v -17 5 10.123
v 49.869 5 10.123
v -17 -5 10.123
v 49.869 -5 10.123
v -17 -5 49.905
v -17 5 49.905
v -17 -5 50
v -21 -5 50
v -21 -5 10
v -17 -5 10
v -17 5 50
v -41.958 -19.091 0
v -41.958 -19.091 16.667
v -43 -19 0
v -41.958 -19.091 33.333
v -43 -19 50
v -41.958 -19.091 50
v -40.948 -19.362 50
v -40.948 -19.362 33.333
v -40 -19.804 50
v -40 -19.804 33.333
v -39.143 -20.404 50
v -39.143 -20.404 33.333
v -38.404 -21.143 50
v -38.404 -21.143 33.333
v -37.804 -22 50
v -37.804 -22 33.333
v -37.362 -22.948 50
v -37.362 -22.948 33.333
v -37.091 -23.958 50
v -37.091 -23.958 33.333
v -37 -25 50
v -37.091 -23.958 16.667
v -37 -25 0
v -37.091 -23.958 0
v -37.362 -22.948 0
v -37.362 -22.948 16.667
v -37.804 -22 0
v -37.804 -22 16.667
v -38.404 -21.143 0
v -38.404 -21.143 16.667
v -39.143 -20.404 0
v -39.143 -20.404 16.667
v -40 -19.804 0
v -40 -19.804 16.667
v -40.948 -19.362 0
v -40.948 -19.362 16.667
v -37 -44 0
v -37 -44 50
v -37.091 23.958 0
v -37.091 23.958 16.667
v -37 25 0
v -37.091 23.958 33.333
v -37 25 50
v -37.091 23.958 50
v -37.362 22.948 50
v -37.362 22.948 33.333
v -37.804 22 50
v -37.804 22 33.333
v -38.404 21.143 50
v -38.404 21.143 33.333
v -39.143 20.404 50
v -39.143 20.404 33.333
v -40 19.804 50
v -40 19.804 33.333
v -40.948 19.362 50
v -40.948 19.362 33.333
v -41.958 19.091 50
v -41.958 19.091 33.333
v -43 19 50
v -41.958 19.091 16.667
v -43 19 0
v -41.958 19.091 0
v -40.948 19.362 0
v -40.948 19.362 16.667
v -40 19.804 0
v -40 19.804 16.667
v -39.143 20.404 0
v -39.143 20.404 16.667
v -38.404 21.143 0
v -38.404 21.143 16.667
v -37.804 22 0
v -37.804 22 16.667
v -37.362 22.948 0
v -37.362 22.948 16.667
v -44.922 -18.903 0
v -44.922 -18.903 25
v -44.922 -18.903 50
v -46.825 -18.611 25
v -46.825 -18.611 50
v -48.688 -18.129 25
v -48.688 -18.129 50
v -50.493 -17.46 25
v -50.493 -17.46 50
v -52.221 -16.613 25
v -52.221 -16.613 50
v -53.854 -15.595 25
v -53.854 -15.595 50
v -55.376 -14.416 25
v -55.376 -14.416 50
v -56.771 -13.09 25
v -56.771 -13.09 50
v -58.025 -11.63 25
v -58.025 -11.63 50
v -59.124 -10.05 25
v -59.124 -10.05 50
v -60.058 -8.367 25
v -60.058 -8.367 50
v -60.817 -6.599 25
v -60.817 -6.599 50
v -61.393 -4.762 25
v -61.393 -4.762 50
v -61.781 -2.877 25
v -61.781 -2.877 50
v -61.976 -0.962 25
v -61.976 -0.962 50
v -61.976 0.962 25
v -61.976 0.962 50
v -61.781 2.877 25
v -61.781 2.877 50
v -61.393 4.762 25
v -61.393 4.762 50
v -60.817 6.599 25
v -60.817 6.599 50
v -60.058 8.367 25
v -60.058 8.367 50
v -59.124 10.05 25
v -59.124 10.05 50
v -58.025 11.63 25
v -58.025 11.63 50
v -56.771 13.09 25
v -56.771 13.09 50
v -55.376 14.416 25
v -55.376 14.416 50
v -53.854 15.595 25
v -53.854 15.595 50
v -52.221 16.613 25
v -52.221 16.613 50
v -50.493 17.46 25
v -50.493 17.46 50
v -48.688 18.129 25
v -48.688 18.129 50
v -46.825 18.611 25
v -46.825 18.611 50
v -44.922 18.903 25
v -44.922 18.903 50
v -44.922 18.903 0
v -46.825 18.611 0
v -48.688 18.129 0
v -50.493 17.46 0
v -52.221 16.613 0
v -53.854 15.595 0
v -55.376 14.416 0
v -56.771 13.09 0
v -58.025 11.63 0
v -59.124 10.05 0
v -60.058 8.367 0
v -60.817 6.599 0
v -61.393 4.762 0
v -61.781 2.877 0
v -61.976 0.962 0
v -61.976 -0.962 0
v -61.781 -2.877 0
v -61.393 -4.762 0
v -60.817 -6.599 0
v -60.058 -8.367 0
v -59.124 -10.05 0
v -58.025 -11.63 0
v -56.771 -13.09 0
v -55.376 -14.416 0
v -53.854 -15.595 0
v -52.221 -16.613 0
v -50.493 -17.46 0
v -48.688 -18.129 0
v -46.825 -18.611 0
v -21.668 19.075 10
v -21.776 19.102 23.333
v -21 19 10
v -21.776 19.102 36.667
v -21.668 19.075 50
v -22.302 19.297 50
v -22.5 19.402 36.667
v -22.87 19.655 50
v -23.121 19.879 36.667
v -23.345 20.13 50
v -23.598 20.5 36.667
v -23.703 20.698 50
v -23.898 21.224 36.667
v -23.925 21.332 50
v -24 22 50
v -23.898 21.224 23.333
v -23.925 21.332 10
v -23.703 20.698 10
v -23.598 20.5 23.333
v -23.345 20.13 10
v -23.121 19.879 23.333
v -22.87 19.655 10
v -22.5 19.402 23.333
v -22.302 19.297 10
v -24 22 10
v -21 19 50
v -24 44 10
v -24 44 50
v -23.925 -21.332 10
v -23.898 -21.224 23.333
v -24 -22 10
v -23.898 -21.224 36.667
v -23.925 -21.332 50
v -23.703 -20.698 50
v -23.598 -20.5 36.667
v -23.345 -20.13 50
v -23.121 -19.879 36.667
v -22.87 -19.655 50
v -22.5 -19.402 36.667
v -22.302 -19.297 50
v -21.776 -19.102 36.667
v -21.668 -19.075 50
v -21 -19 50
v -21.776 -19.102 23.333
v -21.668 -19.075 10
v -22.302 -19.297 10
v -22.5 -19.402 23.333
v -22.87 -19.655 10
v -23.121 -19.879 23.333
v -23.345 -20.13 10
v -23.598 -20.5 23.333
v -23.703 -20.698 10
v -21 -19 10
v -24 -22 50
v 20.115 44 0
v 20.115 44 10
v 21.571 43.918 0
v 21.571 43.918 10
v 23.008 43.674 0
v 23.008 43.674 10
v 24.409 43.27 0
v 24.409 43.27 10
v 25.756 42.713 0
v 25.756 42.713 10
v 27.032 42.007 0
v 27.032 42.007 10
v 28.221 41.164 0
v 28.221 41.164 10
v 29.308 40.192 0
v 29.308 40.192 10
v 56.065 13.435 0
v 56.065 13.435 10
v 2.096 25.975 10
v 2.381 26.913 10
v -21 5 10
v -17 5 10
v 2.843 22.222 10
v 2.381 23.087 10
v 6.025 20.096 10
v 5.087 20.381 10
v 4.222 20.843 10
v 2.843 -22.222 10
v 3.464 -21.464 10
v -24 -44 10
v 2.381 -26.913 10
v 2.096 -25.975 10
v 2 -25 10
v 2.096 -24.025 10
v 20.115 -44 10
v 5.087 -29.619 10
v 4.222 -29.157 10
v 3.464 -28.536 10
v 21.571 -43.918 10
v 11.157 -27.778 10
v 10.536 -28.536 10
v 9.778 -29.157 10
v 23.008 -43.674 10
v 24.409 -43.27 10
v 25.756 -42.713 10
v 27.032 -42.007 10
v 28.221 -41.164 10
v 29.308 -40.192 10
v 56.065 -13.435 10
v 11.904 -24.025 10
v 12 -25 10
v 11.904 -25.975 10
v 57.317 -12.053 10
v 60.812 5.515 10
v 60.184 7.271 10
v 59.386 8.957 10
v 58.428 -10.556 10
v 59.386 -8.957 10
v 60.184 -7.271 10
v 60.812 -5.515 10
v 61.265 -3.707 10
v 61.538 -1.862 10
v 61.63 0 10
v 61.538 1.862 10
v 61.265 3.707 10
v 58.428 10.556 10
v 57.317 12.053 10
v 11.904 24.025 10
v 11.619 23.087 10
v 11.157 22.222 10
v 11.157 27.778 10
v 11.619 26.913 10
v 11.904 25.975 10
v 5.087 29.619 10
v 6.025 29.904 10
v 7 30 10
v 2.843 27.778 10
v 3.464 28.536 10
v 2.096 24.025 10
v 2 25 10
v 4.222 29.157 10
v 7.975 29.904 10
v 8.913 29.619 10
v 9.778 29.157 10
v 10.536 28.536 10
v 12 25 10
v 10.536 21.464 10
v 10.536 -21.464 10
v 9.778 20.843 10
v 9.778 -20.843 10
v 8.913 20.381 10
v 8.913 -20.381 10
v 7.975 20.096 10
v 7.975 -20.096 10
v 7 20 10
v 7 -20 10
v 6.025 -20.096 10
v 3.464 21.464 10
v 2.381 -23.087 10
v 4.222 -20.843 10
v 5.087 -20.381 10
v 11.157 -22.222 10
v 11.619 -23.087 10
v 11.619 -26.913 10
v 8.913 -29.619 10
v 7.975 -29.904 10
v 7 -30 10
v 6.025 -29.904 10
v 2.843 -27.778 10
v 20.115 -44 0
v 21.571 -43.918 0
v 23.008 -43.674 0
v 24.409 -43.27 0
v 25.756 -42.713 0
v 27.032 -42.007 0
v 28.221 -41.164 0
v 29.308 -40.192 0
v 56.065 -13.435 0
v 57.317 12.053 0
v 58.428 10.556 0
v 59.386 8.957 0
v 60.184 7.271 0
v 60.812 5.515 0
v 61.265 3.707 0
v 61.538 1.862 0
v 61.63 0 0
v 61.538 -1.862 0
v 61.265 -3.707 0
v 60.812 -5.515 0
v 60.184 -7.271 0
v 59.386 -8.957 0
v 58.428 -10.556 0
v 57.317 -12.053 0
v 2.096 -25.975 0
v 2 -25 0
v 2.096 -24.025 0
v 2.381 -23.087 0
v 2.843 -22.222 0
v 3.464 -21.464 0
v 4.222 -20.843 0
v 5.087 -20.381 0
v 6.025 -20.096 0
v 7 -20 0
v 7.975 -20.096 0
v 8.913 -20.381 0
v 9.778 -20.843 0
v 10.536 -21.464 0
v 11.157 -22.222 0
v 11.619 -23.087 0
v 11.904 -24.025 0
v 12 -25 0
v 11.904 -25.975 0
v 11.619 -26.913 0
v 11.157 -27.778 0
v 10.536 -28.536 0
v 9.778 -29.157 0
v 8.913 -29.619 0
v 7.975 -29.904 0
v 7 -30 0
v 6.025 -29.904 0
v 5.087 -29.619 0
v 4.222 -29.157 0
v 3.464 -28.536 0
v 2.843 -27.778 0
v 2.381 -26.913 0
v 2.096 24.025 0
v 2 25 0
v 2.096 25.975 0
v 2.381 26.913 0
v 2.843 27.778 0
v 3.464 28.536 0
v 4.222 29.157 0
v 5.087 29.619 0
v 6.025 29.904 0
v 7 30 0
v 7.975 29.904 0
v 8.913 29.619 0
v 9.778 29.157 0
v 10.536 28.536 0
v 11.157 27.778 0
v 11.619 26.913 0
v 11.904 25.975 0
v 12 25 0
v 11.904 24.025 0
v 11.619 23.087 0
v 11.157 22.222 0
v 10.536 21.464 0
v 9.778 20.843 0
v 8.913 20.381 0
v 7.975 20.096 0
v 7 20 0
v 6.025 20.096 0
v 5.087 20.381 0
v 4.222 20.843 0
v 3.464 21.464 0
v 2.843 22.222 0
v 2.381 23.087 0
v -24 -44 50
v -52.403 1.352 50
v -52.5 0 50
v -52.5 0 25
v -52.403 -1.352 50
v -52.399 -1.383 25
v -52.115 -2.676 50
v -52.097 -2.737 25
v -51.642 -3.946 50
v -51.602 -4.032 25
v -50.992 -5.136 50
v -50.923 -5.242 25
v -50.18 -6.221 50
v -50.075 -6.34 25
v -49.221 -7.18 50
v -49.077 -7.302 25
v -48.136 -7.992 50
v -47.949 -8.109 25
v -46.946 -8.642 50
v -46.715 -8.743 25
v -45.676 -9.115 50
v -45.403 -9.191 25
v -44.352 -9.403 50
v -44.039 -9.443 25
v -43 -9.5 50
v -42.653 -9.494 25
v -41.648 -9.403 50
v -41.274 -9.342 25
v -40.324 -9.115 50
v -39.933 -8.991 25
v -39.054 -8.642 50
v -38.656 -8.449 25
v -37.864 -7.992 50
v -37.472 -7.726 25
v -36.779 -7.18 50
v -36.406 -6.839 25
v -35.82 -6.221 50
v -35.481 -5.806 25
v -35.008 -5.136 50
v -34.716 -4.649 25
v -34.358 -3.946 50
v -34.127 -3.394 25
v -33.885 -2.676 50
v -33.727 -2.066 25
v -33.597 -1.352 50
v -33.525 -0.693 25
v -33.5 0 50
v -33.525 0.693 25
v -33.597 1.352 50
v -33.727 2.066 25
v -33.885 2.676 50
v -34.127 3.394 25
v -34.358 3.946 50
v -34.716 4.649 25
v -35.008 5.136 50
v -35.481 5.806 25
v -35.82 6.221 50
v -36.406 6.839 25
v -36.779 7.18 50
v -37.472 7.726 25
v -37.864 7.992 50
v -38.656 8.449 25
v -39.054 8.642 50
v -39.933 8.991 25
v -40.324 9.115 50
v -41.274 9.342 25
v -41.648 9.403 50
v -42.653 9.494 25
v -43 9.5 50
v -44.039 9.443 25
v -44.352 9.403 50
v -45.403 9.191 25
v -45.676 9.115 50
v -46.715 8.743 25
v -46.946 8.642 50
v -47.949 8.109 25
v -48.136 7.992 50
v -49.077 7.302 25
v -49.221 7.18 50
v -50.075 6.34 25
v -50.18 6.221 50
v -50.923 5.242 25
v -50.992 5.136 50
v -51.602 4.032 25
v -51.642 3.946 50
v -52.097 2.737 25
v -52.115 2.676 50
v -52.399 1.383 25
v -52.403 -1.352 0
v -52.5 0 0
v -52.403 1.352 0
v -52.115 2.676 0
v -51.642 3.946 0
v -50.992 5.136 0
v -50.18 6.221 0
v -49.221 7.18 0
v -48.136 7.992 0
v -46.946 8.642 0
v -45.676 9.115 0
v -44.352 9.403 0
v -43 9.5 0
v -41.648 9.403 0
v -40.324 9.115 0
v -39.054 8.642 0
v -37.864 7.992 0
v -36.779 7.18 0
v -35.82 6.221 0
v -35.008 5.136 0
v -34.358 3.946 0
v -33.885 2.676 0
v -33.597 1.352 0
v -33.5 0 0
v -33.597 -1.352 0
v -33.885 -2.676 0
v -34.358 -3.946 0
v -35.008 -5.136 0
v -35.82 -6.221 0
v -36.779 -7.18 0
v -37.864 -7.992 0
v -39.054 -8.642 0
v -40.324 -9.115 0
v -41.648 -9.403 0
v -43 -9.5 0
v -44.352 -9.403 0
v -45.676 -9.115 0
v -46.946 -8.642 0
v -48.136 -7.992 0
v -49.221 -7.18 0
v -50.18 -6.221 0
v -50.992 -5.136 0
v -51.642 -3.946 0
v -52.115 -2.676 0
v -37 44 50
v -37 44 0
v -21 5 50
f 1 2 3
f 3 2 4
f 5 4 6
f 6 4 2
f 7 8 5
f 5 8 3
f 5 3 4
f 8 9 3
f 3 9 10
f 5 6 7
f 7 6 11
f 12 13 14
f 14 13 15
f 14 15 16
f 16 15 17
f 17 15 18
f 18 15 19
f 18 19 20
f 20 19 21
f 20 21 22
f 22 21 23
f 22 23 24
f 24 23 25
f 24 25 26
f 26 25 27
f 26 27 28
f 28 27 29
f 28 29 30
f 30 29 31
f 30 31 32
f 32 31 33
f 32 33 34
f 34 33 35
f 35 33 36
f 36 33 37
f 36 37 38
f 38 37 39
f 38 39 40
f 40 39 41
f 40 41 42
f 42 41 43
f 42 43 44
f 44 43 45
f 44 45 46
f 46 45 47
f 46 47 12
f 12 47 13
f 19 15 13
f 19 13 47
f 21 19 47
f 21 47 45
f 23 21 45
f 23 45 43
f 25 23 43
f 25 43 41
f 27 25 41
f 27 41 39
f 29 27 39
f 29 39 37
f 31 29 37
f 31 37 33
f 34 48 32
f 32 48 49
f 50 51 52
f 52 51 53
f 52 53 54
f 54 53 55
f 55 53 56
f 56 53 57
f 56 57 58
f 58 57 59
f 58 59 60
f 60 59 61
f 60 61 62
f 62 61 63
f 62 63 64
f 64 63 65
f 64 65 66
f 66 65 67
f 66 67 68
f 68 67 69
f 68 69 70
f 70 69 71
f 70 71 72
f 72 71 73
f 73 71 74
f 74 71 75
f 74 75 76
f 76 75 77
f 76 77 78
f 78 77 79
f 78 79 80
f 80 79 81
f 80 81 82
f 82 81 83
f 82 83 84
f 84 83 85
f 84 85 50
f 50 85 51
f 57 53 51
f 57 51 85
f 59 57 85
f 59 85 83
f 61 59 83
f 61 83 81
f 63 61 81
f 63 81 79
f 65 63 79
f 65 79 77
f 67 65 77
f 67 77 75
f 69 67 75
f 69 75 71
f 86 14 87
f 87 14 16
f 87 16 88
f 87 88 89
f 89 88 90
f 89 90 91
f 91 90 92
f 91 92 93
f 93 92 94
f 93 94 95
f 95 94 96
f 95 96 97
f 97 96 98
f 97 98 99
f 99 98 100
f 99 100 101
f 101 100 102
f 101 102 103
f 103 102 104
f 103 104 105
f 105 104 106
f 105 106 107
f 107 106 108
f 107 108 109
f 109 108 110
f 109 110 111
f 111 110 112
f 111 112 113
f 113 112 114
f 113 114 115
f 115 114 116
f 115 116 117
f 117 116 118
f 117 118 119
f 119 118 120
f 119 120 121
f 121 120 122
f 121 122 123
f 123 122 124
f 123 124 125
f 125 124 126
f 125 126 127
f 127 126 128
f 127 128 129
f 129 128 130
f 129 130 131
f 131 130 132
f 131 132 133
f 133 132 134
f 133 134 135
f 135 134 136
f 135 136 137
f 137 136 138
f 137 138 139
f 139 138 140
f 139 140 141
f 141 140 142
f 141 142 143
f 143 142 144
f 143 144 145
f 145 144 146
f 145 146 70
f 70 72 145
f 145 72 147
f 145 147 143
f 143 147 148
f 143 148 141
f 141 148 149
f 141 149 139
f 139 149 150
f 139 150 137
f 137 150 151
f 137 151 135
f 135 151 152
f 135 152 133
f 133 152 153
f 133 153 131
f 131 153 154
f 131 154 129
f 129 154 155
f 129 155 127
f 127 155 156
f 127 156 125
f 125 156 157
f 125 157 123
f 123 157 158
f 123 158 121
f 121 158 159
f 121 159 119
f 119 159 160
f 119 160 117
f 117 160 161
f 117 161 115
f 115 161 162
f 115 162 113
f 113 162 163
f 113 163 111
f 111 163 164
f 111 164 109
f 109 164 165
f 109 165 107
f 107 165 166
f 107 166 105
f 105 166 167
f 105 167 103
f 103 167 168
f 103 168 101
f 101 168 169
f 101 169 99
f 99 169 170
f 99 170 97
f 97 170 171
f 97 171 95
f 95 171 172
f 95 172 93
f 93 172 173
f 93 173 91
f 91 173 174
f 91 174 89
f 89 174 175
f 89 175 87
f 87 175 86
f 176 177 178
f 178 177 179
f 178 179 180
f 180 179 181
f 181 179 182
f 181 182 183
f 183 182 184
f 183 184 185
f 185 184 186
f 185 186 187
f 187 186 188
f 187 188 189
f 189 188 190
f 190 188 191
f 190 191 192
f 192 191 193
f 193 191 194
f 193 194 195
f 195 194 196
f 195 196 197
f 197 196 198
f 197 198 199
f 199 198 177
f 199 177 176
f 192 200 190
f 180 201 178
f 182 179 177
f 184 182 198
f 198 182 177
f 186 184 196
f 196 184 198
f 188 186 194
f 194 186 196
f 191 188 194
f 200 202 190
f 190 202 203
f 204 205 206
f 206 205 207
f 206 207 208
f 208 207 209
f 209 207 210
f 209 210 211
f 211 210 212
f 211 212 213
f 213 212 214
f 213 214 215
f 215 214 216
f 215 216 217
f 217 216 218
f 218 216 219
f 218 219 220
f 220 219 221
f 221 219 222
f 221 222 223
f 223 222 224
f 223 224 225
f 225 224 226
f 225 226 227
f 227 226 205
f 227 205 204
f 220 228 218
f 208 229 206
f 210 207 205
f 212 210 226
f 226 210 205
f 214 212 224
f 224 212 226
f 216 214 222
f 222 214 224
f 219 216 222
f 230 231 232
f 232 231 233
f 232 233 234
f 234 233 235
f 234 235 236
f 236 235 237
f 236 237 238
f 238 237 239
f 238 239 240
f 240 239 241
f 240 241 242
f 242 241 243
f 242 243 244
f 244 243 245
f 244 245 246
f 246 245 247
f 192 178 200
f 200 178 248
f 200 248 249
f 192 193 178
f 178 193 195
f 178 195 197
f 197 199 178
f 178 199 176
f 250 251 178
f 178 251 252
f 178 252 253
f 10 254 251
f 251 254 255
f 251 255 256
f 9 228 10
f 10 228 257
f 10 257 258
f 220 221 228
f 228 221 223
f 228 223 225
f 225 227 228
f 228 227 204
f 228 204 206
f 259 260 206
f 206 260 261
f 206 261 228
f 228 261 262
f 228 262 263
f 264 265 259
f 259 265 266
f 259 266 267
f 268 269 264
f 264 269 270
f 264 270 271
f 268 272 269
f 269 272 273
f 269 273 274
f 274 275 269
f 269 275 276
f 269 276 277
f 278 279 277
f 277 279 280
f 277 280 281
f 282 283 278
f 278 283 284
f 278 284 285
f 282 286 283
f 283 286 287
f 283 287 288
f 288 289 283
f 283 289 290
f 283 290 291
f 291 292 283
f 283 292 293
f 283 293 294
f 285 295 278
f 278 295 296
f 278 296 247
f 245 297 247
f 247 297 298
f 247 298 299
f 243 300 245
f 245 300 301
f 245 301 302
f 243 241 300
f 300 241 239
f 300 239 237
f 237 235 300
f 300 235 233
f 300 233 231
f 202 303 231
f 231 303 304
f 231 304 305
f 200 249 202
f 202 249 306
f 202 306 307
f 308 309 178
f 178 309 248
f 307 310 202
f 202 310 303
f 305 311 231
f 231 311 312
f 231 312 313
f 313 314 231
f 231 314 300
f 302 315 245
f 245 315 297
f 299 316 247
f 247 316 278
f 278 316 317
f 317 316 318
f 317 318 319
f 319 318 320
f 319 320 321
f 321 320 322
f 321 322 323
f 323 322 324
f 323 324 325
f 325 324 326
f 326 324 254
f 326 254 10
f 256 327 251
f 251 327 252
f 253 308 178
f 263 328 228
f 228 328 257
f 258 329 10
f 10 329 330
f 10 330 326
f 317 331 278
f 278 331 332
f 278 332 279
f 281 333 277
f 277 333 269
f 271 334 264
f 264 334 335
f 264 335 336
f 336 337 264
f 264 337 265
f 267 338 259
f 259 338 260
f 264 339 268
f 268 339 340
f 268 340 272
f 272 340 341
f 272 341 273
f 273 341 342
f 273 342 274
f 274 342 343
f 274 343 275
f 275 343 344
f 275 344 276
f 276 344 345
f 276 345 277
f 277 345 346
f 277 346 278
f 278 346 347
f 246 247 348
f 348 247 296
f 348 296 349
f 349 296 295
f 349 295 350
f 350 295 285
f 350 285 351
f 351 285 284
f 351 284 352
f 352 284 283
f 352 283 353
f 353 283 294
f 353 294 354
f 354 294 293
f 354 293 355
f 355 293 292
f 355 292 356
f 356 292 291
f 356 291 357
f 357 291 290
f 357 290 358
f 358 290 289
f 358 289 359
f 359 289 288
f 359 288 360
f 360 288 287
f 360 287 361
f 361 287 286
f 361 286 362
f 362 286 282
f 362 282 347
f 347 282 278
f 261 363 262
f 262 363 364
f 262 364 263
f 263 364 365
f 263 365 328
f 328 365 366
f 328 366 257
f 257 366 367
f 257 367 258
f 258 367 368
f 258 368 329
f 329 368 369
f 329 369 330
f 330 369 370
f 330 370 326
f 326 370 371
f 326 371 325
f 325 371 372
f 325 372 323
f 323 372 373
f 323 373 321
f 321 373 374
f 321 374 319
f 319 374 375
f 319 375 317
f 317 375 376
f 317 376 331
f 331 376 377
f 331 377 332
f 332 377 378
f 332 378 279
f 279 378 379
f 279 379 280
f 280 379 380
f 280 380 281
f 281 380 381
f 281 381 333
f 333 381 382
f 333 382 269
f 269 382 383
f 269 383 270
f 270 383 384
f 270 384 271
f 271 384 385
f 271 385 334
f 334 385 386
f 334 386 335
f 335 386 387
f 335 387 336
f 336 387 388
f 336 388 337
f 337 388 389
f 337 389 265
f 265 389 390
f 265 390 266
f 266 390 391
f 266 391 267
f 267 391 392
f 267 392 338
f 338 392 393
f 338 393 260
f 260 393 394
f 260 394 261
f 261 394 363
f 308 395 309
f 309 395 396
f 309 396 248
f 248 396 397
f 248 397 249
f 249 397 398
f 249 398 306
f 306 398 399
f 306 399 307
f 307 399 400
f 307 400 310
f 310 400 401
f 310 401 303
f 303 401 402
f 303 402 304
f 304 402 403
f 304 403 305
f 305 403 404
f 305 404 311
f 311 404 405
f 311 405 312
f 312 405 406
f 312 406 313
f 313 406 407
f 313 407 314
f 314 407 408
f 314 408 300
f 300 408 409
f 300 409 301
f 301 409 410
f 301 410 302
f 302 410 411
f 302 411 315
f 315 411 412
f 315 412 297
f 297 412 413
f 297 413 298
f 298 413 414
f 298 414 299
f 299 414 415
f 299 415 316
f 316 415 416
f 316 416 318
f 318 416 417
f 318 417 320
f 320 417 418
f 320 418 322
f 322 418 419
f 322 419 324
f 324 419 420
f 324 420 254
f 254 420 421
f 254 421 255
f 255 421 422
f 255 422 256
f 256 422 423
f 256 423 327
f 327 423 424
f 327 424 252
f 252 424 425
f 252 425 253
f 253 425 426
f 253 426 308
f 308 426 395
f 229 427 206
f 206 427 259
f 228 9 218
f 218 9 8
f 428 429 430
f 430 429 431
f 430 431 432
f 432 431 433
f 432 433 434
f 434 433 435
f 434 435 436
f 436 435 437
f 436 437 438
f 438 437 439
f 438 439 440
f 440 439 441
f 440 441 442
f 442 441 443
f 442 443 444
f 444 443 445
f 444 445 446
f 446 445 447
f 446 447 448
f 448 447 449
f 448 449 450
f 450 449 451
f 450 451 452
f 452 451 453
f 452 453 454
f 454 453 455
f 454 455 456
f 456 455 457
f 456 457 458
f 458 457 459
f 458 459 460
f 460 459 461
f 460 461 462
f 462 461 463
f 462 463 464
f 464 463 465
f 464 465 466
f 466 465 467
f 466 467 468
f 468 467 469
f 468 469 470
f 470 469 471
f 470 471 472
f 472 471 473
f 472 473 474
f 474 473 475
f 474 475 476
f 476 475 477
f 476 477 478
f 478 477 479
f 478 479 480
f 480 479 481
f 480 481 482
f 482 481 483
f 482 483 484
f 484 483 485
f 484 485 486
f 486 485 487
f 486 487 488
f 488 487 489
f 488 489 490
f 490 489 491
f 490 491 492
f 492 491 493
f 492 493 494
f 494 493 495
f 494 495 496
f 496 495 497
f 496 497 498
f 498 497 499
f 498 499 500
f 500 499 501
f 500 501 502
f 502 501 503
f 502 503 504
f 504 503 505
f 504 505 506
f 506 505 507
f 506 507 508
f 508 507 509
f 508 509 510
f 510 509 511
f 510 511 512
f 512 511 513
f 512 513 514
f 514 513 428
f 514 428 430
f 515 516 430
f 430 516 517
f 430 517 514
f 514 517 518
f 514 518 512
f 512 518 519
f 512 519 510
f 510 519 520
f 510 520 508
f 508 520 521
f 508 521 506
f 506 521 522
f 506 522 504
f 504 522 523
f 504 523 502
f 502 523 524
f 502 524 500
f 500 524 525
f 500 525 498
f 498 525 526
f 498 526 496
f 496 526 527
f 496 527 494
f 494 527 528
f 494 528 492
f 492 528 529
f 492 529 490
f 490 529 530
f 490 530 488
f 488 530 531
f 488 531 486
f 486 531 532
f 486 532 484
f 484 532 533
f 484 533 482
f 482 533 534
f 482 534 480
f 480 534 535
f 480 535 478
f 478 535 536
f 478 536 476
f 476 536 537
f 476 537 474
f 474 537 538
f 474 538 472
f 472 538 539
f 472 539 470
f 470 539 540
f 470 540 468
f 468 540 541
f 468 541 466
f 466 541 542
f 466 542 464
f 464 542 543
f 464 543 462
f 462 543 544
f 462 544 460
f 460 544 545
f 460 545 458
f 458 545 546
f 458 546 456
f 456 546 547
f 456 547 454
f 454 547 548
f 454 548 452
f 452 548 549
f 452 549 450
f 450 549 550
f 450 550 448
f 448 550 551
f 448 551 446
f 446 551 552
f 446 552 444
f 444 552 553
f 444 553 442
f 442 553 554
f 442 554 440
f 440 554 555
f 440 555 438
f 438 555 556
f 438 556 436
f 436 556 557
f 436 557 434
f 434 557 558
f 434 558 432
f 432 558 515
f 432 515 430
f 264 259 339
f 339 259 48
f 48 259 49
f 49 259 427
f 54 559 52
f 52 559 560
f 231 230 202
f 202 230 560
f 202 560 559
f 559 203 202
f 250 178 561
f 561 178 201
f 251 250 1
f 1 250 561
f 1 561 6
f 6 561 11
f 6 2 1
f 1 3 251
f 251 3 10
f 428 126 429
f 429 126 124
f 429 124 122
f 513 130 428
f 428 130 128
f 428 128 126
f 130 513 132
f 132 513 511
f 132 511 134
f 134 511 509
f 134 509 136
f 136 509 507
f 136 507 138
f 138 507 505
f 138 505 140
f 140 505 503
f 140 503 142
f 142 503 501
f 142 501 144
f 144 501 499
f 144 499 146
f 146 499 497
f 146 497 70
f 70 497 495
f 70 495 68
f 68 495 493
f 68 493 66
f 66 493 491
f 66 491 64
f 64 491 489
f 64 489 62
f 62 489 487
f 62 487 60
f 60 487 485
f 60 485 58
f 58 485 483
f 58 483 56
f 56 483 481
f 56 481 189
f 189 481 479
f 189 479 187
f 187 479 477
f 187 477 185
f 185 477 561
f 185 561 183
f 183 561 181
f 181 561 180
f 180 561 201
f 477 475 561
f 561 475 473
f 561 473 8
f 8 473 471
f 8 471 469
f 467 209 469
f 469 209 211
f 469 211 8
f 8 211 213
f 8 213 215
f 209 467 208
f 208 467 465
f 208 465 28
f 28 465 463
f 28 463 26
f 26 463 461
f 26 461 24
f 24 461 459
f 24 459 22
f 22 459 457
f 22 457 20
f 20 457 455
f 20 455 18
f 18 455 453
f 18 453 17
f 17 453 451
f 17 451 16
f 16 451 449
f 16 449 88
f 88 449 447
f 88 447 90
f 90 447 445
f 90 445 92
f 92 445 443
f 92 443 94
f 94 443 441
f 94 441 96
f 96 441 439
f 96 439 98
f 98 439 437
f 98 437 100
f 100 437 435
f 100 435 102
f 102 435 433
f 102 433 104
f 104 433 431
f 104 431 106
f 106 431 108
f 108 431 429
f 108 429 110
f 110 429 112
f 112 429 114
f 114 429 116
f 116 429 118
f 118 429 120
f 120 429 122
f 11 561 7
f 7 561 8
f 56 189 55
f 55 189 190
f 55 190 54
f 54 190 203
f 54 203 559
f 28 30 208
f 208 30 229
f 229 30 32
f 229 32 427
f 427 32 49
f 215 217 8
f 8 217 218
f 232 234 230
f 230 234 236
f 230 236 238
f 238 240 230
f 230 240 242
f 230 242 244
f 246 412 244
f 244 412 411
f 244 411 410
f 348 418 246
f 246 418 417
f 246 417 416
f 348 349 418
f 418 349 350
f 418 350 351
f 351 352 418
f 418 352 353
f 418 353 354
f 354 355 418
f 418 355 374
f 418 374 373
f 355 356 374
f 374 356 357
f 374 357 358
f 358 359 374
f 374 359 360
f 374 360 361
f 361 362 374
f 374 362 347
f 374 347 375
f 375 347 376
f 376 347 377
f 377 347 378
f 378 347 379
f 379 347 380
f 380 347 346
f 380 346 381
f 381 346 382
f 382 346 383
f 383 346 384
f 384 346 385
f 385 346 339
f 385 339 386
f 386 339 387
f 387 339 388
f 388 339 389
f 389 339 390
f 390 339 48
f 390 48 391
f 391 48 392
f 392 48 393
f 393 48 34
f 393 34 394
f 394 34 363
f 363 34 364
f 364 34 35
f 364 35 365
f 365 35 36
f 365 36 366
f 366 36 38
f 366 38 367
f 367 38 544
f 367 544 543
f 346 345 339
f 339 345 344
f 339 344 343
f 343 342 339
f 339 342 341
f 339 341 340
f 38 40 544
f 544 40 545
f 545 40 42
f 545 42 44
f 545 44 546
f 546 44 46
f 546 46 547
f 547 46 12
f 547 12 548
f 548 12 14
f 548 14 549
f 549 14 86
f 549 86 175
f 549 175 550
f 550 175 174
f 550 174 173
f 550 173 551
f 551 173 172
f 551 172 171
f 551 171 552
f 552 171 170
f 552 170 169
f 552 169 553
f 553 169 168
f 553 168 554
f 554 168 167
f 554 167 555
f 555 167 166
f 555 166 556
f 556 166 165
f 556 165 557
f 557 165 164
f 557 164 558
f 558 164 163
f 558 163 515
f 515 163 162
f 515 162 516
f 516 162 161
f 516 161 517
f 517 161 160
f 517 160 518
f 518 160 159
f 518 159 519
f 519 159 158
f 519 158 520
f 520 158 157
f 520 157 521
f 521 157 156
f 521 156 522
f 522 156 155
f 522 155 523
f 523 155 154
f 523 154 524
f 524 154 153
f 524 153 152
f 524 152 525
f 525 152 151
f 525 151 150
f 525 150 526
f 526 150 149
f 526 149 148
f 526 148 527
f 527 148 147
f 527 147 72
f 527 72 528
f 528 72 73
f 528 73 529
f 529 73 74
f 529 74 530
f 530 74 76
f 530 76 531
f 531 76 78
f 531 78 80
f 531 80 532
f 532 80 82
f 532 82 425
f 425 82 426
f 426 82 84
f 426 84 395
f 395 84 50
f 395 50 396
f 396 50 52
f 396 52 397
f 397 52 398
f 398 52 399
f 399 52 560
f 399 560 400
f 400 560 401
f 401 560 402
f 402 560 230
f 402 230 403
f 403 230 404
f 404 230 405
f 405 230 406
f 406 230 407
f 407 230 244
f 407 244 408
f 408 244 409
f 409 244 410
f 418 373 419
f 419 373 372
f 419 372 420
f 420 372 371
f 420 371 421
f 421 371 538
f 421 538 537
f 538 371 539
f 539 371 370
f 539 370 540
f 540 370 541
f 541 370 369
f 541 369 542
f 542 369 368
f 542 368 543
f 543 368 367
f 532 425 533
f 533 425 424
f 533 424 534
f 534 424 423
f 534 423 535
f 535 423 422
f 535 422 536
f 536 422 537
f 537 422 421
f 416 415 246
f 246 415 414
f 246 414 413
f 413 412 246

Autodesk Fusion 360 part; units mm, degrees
sketch "Sketch1" plane through (0, 0, 0) normal (0, 0, 1) x (1, 0, 0)
  circle A0 centre (-43, 0) radius 19
  circle A1 centre (-43, 0) radius 9.5
  line L0 (-37, 44) -> (-37, 18.0278)
  line L1 (-37, -44) -> (-37, -18.0278)
  line L2 (-37, -44) -> (43, -44)
  line L3 (-37, 44) -> (43, 44)
  line L4 (-37, 44) -> (-24, 44)
  line L5 (-24, 0) -> (-21, 0)
  line L6 (-21, 19) -> (-24, 19)
  line L7 (-21, -19) -> (-24, -19)
  line L8 (-24, 19) -> (-24, 44)
  line L9 (-24, -19) -> (-24, -44)
  line L10 (-21, 0) -> (-17, 0)
  line L11 (-17, 0) -> (-17, 5)
  line L12 (-17, 0) -> (-17, -5)
  line L13 (-17, 5) -> (-21, 5)
  line L14 (-17, -5) -> (-21, -5)
  line L15 (-21, -5) -> (-21, -19)
  line L16 (-21, 5) -> (-21, 19)
  circle A2 centre (7, 25) radius 5
  circle A3 centre (7, -25) radius 5
  line L17 (43, 44) -> (62, 44)
  line L18 (62, 44) -> (62, -44)
  line L19 (43, -44) -> (62, -44)
  dimension "d8" = 13
  dimension "d21" = 19
  dimension "d22" = 88
extrude "Extrude1" add sketch "Sketch1" along normal blind 50 contours A0 | A0 L1 L2 L5 L7 L9 L10 L12 L14 L15 | A0 L0 L3 L4 L5 L6 L8 L10 L11 L13 L16
extrude "Extrude2" add sketch "Sketch1" along normal blind 10 contours L2 L3 L6 L7 L8 L9 L11 L12 L13 L14 L15 L16 L17 L18 L19
chamfer "Chamfer1" distance 36.5 angle 45 2 edges at (62, -44, 5) (62, 44, 5)
fillet "Fillet1" radius 19 2 edges at (62, -7.5, 5) (62, 7.5, 5)
fillet "Fillet2" radius 13 1 edges at (25.5, -44, 5)
fillet "Fillet3" radius 13 1 edges at (25.5, 44, 5)
fillet "Fillet4" radius 3 1 edges at (-24, -19, 30)
fillet "Fillet5" radius 3 1 edges at (-24, 19, 30)
fillet "Fillet6" radius 6 1 edges at (-37, 18.0278, 25)
fillet "Fillet7" radius 6 1 edges at (-37, -18.0278, 25)
sketch "Sketch2" plane through (0, 0, 0) normal (0, 1, 0) x (1, 0, 0)
  line L0 (-17.1305, -49.9822) -> (-17.1305, -10.123)
  line L1 (-17.1305, -10.123) -> (49.8695, -10.123)
  line L2 (-17.1305, -49.9822) -> (49.8695, -10.123)
  dimension "d42" = 67
extrude "Extrude3" add sketch "Sketch2" along normal mid plane 10
